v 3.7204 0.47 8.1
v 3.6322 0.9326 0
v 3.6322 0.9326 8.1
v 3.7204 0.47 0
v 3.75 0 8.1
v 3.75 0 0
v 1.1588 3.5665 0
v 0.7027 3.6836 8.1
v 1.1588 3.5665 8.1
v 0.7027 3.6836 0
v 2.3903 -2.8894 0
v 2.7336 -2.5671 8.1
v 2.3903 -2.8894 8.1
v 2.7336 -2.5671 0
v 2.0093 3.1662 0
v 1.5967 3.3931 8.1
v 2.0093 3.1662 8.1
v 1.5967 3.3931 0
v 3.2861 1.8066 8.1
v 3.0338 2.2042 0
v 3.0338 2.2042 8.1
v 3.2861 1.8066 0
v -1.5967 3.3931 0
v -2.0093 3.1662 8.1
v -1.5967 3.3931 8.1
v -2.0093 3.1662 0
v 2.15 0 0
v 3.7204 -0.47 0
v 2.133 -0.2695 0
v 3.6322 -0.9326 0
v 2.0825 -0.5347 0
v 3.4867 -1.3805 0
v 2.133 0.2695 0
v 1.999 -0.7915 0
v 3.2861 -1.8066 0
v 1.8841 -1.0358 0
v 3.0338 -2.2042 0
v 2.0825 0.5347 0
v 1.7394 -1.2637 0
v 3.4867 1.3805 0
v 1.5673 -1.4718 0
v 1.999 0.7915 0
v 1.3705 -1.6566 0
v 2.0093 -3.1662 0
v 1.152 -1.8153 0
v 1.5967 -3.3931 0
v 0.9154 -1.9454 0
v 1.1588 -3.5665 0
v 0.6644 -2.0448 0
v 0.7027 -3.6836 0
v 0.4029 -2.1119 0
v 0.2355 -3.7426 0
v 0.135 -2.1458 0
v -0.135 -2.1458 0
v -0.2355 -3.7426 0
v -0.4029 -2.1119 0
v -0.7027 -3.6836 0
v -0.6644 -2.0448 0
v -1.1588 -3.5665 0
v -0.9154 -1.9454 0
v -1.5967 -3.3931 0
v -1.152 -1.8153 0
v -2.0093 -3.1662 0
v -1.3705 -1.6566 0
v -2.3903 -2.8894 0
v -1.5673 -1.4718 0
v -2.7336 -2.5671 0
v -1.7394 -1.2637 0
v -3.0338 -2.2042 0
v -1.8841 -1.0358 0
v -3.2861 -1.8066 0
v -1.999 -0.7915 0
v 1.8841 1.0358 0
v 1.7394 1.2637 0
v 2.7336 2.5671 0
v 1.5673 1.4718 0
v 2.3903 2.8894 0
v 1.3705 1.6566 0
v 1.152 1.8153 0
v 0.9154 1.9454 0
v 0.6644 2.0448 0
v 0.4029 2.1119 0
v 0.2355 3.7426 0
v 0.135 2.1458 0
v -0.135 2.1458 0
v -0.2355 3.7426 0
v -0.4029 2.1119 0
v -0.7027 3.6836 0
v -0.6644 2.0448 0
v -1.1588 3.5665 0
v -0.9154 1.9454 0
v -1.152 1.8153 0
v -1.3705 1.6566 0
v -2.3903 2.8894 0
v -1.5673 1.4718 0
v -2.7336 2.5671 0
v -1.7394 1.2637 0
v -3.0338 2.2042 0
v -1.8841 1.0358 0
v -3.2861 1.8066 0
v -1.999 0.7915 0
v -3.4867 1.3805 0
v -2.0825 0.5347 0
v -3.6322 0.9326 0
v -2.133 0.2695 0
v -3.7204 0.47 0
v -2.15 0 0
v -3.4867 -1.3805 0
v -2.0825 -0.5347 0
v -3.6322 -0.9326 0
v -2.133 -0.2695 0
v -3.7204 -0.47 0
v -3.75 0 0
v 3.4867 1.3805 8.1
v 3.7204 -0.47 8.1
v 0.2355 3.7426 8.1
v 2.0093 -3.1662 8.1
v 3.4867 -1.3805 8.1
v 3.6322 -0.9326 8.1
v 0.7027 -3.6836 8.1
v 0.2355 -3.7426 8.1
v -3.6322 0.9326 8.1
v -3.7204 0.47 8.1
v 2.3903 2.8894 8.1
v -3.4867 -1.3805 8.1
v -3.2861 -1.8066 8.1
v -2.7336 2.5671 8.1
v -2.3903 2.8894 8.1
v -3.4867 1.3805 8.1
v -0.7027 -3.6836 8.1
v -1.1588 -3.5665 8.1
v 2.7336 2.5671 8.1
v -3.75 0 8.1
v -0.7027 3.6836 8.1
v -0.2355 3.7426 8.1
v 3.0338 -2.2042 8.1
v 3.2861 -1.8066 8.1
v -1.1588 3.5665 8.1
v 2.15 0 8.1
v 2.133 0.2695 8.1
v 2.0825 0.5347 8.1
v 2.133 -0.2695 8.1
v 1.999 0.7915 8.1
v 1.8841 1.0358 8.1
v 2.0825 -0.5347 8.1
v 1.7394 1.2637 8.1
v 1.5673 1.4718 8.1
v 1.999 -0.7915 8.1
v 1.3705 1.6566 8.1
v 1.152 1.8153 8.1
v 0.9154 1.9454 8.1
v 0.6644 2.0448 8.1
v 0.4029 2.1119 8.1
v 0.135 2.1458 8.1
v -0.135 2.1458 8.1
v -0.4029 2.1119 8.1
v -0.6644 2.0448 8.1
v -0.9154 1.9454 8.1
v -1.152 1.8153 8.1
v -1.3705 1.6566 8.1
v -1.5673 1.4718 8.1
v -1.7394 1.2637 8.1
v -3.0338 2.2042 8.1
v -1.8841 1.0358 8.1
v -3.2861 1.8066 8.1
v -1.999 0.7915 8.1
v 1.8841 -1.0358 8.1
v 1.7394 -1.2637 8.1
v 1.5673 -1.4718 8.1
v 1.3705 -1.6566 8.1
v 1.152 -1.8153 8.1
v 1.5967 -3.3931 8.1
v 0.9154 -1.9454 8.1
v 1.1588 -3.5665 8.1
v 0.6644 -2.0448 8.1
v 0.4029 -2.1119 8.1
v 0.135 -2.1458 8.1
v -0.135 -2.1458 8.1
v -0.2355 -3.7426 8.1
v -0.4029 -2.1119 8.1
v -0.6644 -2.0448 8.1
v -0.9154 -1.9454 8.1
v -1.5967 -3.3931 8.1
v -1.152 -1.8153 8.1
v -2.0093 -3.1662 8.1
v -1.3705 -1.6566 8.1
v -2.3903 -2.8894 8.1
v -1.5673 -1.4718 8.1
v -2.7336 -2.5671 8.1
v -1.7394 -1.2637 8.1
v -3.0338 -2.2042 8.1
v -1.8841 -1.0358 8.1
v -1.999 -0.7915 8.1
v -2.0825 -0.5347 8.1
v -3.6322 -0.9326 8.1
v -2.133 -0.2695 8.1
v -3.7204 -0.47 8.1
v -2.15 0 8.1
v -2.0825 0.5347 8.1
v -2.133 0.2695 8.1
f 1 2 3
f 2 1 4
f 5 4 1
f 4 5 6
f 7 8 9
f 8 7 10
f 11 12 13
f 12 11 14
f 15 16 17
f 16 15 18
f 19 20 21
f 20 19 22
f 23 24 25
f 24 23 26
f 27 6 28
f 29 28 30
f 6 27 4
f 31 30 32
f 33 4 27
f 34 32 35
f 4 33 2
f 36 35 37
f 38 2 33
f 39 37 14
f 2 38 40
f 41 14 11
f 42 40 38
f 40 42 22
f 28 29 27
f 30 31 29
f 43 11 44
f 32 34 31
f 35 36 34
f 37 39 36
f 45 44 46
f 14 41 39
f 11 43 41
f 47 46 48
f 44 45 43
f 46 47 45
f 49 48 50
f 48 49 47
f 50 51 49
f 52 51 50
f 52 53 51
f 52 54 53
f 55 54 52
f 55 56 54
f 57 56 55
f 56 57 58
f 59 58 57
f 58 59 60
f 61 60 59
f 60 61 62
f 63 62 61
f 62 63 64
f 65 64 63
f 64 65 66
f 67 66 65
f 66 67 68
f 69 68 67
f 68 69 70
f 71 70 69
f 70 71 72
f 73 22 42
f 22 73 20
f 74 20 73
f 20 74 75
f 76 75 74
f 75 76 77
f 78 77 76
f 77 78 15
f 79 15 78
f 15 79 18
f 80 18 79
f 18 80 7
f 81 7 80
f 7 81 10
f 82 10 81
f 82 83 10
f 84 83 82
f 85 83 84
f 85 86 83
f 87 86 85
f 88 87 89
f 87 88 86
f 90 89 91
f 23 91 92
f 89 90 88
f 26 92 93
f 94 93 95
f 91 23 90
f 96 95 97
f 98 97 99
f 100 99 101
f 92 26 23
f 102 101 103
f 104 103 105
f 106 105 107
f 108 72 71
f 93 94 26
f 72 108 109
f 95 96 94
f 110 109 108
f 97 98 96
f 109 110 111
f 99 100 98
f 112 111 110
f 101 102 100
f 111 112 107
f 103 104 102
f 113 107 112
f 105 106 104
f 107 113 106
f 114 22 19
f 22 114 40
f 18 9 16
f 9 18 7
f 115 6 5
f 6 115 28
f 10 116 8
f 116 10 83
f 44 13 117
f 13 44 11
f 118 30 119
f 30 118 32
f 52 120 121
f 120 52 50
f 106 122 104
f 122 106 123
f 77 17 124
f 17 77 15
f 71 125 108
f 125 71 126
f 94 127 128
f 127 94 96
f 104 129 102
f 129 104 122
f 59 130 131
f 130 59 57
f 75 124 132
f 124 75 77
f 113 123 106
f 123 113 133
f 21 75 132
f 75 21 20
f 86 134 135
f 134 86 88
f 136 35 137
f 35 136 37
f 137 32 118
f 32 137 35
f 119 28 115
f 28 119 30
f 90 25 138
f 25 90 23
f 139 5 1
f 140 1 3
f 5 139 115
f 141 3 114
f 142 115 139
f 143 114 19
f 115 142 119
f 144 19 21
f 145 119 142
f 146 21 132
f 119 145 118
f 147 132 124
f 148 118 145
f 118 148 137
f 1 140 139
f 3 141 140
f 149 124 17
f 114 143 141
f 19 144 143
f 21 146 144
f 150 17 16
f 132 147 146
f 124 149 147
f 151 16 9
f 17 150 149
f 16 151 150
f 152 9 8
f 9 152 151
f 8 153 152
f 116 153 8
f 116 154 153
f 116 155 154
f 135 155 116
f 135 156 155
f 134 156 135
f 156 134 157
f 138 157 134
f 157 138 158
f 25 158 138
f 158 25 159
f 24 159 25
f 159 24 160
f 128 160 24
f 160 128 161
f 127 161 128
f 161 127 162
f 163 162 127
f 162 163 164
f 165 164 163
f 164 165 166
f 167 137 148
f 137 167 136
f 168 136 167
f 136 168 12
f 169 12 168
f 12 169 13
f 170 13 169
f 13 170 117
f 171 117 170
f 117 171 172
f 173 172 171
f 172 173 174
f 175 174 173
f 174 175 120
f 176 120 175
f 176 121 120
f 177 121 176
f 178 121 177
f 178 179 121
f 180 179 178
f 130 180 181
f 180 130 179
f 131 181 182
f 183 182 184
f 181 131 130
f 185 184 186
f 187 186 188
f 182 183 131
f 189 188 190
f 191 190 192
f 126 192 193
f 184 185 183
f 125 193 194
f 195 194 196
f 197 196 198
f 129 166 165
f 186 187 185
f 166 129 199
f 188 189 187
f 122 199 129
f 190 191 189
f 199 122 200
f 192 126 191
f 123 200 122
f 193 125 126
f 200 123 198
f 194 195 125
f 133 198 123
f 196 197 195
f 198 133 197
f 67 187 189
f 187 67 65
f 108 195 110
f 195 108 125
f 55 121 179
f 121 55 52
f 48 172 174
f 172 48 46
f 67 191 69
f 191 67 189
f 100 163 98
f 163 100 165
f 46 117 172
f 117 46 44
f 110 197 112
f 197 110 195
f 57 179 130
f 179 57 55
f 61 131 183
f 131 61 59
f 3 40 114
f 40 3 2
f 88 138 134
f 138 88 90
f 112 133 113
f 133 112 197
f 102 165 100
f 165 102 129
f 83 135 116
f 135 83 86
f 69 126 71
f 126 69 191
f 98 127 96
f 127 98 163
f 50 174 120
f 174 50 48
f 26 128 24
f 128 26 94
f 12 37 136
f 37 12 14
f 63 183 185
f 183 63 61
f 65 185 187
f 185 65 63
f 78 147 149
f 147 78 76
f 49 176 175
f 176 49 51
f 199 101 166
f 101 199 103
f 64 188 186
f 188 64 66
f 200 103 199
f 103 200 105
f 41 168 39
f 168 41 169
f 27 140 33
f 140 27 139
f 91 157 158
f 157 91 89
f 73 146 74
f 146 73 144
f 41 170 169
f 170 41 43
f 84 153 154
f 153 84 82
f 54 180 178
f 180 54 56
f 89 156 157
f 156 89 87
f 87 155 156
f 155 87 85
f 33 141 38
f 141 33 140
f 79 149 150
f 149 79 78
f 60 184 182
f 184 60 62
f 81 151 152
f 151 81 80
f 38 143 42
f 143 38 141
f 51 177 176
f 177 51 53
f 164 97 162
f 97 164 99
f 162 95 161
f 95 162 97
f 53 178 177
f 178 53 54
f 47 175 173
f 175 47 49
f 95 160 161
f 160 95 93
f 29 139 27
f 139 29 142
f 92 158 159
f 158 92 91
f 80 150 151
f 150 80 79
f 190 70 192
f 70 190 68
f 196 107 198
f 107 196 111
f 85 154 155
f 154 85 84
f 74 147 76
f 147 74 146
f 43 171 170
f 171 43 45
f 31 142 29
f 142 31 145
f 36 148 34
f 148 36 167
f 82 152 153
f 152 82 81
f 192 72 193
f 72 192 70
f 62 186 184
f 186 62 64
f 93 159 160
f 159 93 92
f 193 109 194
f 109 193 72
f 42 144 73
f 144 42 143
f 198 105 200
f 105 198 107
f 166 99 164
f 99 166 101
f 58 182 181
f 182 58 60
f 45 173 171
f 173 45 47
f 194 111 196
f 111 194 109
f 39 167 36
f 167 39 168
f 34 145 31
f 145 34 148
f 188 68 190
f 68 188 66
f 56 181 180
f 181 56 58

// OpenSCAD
$fn = 50;

L = 12.3-3-1.2;
id = 4.3;
od = 2*((id/2) + (0.4*4));

difference() {
    cylinder(h=L, d=od);
    cylinder(h=L, d=id);
}
